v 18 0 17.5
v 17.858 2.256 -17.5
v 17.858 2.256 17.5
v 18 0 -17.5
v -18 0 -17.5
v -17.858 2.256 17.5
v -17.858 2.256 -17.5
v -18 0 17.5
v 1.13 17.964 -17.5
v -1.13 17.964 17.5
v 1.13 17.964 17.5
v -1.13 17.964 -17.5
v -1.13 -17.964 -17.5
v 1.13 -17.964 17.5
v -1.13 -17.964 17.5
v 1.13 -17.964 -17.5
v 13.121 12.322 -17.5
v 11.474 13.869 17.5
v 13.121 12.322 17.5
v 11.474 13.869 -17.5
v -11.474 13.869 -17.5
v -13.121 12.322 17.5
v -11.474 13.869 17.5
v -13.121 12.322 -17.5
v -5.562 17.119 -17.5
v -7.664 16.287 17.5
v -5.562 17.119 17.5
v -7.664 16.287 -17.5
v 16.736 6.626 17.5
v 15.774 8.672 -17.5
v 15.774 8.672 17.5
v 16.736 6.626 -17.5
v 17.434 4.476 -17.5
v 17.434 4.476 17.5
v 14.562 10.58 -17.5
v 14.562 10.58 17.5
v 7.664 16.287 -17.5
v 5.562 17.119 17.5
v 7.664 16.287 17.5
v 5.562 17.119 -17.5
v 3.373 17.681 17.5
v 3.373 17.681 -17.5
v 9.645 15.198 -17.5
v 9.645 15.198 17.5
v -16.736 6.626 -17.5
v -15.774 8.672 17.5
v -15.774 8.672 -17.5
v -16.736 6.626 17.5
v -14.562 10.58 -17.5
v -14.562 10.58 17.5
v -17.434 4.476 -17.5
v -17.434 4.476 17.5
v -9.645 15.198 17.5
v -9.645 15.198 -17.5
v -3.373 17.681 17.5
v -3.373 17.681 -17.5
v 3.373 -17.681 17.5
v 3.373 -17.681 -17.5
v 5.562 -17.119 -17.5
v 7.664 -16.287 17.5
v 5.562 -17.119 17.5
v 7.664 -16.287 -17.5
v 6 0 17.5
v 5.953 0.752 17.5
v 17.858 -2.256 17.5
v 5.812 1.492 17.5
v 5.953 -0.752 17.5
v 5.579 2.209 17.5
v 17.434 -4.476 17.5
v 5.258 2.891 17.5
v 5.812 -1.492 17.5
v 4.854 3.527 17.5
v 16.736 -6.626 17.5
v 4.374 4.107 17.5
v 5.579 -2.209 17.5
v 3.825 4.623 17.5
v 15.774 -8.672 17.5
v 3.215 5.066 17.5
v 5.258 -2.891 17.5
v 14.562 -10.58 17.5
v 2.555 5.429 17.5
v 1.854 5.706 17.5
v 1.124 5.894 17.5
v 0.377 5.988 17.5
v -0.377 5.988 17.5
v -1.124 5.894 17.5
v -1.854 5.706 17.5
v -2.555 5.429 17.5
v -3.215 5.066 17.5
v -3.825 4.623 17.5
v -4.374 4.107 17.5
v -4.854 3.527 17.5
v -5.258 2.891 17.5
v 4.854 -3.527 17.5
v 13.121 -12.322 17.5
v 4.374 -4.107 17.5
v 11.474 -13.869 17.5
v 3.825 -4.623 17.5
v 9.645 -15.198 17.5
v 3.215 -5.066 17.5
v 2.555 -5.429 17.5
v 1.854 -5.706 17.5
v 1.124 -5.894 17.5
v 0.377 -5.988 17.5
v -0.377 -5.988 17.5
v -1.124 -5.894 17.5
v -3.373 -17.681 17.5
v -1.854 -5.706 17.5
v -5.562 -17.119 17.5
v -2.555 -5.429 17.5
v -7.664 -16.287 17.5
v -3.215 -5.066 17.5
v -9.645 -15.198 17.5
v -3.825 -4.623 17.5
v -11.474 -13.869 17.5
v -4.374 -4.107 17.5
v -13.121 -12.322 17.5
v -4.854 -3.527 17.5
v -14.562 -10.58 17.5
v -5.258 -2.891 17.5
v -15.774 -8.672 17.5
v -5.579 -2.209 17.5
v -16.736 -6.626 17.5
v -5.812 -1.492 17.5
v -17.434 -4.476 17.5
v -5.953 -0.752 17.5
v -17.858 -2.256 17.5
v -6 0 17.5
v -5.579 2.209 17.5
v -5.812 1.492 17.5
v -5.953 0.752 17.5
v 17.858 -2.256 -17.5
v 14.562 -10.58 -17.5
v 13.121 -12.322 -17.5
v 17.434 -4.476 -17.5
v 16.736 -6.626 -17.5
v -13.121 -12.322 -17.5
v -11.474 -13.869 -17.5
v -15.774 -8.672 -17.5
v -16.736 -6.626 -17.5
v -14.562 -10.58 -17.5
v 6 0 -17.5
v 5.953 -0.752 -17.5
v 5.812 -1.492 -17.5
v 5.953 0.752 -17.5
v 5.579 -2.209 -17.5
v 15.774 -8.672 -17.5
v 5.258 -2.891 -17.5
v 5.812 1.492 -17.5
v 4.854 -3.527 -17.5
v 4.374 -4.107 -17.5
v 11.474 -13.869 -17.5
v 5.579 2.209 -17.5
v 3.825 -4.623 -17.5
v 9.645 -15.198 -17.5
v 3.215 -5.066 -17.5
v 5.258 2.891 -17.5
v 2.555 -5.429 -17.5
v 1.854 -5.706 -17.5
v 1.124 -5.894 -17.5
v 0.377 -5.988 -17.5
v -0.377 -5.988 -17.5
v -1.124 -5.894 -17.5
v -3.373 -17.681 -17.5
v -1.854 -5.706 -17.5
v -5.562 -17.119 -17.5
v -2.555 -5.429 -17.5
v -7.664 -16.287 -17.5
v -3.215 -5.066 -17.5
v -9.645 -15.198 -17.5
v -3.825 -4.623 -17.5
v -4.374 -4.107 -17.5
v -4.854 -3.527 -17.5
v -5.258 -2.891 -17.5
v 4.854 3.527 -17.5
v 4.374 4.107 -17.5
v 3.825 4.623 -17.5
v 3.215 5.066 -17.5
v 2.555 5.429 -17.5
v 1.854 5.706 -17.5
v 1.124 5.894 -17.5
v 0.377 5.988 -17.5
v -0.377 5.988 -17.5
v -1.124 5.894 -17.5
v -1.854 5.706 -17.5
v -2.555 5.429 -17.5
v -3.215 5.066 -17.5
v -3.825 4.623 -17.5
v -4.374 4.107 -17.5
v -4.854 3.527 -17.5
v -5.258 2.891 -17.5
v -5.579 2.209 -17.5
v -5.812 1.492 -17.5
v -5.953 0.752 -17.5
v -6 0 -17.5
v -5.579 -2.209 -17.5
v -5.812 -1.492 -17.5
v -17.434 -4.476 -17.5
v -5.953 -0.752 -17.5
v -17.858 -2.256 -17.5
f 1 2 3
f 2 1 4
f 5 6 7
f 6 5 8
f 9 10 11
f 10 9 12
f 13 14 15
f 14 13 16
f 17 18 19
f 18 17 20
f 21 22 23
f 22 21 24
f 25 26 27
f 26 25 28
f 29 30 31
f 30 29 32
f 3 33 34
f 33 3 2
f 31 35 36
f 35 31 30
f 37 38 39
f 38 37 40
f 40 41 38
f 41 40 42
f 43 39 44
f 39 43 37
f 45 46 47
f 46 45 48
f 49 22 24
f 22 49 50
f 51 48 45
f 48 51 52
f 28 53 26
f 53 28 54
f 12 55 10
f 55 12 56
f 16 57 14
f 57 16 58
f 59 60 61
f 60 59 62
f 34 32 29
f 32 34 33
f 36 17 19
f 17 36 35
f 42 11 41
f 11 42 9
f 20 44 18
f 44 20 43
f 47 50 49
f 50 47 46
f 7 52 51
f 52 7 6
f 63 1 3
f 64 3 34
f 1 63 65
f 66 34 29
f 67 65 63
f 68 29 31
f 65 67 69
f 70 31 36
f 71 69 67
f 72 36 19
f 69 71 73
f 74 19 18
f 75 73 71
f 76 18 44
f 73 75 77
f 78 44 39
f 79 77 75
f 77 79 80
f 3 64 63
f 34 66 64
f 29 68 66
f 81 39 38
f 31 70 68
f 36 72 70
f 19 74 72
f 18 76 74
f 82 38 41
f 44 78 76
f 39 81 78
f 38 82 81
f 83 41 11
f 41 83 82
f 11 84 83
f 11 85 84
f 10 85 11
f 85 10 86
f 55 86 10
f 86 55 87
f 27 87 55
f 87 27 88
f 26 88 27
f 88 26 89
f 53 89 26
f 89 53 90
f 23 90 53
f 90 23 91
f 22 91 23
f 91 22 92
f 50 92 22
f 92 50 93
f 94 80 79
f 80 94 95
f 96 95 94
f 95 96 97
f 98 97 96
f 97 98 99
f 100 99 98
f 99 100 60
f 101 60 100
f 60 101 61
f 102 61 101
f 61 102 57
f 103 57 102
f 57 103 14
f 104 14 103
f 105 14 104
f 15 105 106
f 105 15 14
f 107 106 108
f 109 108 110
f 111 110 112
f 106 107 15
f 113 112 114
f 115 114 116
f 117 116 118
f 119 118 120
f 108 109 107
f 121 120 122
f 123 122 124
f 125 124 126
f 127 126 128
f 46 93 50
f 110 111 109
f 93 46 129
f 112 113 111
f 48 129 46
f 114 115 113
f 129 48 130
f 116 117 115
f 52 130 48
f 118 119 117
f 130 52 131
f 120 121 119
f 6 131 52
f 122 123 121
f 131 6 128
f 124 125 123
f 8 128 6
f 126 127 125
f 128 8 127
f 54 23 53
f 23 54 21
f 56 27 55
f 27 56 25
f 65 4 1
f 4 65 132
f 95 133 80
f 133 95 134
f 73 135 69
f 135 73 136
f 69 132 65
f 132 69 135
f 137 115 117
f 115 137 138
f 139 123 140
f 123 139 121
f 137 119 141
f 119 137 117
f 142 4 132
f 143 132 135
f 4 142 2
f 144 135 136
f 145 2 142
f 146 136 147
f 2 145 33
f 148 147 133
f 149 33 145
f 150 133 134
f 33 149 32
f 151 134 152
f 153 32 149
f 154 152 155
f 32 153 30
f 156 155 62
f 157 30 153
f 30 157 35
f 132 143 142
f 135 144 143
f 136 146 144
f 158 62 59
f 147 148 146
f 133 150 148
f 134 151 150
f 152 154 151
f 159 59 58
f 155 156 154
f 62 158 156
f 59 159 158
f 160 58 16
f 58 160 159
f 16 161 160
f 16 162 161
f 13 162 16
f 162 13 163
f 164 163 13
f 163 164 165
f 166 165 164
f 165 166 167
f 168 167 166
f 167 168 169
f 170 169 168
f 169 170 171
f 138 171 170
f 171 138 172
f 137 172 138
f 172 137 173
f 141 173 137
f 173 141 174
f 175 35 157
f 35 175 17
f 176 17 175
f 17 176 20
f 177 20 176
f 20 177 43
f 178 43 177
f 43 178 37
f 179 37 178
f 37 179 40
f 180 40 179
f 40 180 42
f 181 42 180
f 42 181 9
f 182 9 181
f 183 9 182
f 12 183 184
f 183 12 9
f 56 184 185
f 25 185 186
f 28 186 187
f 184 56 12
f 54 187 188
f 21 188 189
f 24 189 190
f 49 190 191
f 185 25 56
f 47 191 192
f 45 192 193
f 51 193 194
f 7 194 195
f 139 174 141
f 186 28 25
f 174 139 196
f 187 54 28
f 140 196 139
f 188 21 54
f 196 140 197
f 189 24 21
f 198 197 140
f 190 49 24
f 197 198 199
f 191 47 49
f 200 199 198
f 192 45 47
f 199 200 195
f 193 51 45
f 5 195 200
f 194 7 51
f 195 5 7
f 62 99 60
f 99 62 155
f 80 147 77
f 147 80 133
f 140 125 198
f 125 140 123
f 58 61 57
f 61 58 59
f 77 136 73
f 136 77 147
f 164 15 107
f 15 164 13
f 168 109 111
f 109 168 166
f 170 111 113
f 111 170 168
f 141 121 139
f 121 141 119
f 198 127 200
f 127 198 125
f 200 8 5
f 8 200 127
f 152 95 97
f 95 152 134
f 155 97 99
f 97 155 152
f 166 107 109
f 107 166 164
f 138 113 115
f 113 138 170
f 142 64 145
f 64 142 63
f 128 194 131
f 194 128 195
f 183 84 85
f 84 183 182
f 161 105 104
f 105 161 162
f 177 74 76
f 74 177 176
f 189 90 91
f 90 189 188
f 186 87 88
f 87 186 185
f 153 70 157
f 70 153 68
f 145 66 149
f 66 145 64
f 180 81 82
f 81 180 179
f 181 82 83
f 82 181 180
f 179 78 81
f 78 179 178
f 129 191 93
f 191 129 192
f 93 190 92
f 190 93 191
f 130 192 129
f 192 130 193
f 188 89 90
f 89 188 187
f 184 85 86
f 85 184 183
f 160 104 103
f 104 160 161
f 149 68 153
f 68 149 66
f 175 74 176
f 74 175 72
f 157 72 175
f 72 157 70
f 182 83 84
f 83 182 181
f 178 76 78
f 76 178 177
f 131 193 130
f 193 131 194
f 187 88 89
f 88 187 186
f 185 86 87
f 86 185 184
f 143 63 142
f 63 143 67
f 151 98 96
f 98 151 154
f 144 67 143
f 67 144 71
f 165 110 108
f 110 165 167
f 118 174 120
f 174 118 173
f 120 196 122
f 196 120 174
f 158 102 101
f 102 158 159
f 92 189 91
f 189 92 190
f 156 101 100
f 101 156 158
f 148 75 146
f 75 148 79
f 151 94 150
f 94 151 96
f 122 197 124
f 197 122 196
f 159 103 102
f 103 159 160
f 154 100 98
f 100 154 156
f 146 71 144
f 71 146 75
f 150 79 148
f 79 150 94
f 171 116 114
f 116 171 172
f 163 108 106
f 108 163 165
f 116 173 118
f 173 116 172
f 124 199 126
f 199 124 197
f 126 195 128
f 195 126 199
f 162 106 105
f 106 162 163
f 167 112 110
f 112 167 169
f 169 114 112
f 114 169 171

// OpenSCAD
$fn = 50;


difference() {
	union() {
		translate(v = [0, 0, -17.5000000000]) {
			cylinder(h = 35, r = 18.0000000000);
		}
	}
	union() {
		translate(v = [0, 0, -100.0000000000]) {
			cylinder(h = 200, r = 6);
		}
	}
}
